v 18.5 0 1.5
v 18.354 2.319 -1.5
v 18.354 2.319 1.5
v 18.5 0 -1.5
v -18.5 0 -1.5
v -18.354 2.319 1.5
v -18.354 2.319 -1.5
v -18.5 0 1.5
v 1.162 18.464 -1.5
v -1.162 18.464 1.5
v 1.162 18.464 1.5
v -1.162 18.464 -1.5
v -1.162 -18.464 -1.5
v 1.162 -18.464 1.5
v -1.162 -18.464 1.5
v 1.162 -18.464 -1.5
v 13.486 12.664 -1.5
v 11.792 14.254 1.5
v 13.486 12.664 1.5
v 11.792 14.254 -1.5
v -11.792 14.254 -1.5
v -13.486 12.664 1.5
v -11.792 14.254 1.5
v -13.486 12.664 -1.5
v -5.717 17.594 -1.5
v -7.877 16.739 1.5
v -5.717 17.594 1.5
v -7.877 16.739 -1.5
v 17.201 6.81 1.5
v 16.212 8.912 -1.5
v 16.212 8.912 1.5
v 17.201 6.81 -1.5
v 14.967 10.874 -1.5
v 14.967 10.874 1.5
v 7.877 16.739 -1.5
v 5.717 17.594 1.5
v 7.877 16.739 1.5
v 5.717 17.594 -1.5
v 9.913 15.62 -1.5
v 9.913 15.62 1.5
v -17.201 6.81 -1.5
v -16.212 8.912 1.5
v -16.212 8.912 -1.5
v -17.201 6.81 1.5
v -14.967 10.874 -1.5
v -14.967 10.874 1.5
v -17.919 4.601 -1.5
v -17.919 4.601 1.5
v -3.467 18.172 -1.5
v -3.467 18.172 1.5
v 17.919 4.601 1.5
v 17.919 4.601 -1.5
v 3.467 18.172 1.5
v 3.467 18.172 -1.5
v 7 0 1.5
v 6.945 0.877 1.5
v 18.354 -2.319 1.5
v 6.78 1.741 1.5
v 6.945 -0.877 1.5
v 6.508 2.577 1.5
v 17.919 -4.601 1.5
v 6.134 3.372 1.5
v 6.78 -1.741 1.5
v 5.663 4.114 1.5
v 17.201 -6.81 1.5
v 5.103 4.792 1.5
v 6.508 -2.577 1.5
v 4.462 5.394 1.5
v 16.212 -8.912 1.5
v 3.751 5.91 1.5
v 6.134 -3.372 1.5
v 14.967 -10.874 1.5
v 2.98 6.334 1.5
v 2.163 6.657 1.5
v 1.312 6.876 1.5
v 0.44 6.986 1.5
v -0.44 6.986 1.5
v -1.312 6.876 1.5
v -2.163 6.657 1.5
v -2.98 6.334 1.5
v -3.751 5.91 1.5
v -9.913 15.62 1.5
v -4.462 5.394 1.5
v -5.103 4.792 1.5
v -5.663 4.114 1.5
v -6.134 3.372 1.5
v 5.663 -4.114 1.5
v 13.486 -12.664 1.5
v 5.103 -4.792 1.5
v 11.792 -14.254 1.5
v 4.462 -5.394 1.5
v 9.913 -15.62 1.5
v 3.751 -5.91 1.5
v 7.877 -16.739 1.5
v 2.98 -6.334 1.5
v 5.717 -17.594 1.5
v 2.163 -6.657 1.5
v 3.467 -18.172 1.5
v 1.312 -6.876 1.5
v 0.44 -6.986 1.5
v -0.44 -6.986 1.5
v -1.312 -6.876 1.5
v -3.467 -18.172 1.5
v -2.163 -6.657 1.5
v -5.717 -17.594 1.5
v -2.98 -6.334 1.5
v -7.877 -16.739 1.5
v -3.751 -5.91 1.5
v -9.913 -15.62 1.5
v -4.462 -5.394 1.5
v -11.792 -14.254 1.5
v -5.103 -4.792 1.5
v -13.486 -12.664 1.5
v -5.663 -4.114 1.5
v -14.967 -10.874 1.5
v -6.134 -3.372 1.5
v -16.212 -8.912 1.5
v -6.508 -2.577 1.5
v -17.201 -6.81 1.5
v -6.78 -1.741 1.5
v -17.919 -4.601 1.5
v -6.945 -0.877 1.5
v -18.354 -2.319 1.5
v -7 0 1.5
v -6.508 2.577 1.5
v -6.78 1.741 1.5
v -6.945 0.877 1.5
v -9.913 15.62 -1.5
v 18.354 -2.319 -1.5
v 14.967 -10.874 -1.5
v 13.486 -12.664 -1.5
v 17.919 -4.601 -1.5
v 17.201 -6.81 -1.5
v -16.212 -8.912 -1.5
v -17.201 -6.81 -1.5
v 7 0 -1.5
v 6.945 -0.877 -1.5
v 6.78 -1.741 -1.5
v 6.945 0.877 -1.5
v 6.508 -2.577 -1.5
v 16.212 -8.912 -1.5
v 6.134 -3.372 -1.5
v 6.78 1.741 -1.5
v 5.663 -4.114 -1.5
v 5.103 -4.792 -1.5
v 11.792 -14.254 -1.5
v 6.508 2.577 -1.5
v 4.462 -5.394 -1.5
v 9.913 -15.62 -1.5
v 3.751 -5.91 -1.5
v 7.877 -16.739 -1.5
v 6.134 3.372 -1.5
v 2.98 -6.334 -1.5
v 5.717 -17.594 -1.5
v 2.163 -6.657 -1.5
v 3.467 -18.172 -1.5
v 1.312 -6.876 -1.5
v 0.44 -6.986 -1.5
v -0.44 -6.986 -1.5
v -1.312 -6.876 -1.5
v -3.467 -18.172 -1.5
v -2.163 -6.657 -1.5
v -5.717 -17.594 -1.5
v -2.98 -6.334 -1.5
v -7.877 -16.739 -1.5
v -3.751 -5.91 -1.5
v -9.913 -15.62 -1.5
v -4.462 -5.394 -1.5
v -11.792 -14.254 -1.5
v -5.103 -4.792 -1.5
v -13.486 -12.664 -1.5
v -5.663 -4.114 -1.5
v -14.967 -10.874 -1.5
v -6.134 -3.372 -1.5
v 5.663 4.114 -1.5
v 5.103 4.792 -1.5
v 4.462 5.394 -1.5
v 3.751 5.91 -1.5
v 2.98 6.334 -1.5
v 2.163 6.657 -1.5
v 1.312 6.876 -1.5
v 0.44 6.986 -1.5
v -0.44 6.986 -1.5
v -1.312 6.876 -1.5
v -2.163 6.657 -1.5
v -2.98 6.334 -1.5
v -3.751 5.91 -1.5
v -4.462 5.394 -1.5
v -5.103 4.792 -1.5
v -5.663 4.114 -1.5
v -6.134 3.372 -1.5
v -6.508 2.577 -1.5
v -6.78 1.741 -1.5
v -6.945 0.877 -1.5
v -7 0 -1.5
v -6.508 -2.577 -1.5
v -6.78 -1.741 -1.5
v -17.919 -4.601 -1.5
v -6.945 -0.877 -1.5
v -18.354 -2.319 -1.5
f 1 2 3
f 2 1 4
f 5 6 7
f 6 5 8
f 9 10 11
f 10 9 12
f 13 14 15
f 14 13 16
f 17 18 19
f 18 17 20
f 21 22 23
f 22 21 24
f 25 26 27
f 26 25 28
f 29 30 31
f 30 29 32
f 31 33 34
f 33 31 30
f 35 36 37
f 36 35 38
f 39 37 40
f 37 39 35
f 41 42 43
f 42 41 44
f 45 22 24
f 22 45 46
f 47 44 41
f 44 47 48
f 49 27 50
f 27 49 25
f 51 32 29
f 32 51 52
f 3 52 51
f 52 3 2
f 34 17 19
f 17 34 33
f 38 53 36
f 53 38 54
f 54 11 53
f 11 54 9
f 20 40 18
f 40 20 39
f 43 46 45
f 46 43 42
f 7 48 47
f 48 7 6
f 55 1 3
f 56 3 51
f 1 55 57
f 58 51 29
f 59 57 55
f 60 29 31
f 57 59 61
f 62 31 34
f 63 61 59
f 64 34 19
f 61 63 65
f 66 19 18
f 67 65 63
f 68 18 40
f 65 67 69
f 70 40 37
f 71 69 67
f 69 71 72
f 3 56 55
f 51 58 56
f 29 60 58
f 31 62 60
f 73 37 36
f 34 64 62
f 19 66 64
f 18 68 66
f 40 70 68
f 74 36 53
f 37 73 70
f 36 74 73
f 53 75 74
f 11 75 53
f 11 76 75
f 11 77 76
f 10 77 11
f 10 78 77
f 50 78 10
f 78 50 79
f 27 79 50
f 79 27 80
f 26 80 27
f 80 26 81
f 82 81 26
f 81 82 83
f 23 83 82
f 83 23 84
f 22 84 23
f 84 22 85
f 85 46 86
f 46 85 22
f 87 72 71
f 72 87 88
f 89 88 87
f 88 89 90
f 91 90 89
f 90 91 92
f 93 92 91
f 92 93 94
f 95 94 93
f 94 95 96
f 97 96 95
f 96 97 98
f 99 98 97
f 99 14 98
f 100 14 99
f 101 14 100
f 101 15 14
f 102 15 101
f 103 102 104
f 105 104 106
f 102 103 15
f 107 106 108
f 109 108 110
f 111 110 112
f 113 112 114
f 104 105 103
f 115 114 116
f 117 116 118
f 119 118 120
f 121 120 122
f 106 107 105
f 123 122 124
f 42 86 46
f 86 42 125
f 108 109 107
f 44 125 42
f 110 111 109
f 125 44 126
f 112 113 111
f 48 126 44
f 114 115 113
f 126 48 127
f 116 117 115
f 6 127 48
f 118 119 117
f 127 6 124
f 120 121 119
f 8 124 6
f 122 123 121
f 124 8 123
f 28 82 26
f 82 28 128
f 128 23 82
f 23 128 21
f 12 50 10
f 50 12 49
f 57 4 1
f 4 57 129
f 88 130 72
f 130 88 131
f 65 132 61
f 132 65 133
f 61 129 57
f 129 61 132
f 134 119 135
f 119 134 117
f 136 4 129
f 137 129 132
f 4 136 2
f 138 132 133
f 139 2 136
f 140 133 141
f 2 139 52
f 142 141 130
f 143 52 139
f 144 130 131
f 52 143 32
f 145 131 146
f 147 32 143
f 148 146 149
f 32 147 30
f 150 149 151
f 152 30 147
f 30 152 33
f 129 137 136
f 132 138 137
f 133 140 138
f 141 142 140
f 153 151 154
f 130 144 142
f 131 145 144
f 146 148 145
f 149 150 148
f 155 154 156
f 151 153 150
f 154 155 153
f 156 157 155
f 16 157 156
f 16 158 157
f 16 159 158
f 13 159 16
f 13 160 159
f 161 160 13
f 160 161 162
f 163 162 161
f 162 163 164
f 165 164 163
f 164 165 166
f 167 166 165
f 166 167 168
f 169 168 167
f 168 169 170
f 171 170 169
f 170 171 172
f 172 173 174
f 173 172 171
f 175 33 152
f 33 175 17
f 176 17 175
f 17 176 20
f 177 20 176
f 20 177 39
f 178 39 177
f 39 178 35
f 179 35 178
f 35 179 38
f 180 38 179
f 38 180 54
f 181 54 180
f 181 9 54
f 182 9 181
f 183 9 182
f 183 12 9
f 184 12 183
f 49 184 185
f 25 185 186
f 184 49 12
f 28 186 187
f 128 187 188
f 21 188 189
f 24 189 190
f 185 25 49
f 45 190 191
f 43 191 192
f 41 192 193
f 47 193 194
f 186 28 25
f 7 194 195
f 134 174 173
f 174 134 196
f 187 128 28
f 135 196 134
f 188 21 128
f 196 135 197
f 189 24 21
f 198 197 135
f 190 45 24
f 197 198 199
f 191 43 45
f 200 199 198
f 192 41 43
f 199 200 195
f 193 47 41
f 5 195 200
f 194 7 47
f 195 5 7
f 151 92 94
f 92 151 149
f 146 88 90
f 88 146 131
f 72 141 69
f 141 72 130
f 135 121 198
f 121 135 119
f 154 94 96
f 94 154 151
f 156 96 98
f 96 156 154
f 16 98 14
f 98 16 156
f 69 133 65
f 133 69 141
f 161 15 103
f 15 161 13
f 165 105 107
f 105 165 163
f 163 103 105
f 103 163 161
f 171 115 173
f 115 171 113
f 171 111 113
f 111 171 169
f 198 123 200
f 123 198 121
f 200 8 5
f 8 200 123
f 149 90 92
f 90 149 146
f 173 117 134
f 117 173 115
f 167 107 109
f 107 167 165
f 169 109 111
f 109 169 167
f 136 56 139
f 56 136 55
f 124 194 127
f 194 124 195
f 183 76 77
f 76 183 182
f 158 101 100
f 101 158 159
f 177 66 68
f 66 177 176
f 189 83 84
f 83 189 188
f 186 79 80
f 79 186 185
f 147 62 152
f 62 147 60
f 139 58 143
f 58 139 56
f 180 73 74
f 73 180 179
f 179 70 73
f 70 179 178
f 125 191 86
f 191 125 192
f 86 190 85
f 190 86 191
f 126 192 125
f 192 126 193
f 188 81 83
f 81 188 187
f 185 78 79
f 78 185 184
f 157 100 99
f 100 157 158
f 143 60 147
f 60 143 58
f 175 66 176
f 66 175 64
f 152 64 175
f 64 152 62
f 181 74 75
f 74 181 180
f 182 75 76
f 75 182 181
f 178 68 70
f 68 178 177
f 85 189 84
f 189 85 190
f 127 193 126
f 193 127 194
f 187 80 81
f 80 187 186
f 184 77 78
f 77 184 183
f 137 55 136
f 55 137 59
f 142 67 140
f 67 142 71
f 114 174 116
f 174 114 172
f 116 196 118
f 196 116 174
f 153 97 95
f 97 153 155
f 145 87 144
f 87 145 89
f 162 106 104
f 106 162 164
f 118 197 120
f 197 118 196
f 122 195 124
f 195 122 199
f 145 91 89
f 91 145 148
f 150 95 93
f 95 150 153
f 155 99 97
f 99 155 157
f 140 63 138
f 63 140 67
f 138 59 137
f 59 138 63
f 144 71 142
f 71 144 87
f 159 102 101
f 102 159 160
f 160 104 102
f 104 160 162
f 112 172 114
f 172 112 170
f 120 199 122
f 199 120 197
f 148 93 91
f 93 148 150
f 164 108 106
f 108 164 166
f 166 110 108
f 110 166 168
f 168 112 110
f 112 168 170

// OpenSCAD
$fn = 50;


difference() {
	union() {
		translate(v = [0, 0, -1.5000000000]) {
			cylinder(h = 3, r = 18.5000000000);
		}
	}
	union() {
		translate(v = [0, 0, -100.0000000000]) {
			cylinder(h = 200, r = 7);
		}
	}
}
